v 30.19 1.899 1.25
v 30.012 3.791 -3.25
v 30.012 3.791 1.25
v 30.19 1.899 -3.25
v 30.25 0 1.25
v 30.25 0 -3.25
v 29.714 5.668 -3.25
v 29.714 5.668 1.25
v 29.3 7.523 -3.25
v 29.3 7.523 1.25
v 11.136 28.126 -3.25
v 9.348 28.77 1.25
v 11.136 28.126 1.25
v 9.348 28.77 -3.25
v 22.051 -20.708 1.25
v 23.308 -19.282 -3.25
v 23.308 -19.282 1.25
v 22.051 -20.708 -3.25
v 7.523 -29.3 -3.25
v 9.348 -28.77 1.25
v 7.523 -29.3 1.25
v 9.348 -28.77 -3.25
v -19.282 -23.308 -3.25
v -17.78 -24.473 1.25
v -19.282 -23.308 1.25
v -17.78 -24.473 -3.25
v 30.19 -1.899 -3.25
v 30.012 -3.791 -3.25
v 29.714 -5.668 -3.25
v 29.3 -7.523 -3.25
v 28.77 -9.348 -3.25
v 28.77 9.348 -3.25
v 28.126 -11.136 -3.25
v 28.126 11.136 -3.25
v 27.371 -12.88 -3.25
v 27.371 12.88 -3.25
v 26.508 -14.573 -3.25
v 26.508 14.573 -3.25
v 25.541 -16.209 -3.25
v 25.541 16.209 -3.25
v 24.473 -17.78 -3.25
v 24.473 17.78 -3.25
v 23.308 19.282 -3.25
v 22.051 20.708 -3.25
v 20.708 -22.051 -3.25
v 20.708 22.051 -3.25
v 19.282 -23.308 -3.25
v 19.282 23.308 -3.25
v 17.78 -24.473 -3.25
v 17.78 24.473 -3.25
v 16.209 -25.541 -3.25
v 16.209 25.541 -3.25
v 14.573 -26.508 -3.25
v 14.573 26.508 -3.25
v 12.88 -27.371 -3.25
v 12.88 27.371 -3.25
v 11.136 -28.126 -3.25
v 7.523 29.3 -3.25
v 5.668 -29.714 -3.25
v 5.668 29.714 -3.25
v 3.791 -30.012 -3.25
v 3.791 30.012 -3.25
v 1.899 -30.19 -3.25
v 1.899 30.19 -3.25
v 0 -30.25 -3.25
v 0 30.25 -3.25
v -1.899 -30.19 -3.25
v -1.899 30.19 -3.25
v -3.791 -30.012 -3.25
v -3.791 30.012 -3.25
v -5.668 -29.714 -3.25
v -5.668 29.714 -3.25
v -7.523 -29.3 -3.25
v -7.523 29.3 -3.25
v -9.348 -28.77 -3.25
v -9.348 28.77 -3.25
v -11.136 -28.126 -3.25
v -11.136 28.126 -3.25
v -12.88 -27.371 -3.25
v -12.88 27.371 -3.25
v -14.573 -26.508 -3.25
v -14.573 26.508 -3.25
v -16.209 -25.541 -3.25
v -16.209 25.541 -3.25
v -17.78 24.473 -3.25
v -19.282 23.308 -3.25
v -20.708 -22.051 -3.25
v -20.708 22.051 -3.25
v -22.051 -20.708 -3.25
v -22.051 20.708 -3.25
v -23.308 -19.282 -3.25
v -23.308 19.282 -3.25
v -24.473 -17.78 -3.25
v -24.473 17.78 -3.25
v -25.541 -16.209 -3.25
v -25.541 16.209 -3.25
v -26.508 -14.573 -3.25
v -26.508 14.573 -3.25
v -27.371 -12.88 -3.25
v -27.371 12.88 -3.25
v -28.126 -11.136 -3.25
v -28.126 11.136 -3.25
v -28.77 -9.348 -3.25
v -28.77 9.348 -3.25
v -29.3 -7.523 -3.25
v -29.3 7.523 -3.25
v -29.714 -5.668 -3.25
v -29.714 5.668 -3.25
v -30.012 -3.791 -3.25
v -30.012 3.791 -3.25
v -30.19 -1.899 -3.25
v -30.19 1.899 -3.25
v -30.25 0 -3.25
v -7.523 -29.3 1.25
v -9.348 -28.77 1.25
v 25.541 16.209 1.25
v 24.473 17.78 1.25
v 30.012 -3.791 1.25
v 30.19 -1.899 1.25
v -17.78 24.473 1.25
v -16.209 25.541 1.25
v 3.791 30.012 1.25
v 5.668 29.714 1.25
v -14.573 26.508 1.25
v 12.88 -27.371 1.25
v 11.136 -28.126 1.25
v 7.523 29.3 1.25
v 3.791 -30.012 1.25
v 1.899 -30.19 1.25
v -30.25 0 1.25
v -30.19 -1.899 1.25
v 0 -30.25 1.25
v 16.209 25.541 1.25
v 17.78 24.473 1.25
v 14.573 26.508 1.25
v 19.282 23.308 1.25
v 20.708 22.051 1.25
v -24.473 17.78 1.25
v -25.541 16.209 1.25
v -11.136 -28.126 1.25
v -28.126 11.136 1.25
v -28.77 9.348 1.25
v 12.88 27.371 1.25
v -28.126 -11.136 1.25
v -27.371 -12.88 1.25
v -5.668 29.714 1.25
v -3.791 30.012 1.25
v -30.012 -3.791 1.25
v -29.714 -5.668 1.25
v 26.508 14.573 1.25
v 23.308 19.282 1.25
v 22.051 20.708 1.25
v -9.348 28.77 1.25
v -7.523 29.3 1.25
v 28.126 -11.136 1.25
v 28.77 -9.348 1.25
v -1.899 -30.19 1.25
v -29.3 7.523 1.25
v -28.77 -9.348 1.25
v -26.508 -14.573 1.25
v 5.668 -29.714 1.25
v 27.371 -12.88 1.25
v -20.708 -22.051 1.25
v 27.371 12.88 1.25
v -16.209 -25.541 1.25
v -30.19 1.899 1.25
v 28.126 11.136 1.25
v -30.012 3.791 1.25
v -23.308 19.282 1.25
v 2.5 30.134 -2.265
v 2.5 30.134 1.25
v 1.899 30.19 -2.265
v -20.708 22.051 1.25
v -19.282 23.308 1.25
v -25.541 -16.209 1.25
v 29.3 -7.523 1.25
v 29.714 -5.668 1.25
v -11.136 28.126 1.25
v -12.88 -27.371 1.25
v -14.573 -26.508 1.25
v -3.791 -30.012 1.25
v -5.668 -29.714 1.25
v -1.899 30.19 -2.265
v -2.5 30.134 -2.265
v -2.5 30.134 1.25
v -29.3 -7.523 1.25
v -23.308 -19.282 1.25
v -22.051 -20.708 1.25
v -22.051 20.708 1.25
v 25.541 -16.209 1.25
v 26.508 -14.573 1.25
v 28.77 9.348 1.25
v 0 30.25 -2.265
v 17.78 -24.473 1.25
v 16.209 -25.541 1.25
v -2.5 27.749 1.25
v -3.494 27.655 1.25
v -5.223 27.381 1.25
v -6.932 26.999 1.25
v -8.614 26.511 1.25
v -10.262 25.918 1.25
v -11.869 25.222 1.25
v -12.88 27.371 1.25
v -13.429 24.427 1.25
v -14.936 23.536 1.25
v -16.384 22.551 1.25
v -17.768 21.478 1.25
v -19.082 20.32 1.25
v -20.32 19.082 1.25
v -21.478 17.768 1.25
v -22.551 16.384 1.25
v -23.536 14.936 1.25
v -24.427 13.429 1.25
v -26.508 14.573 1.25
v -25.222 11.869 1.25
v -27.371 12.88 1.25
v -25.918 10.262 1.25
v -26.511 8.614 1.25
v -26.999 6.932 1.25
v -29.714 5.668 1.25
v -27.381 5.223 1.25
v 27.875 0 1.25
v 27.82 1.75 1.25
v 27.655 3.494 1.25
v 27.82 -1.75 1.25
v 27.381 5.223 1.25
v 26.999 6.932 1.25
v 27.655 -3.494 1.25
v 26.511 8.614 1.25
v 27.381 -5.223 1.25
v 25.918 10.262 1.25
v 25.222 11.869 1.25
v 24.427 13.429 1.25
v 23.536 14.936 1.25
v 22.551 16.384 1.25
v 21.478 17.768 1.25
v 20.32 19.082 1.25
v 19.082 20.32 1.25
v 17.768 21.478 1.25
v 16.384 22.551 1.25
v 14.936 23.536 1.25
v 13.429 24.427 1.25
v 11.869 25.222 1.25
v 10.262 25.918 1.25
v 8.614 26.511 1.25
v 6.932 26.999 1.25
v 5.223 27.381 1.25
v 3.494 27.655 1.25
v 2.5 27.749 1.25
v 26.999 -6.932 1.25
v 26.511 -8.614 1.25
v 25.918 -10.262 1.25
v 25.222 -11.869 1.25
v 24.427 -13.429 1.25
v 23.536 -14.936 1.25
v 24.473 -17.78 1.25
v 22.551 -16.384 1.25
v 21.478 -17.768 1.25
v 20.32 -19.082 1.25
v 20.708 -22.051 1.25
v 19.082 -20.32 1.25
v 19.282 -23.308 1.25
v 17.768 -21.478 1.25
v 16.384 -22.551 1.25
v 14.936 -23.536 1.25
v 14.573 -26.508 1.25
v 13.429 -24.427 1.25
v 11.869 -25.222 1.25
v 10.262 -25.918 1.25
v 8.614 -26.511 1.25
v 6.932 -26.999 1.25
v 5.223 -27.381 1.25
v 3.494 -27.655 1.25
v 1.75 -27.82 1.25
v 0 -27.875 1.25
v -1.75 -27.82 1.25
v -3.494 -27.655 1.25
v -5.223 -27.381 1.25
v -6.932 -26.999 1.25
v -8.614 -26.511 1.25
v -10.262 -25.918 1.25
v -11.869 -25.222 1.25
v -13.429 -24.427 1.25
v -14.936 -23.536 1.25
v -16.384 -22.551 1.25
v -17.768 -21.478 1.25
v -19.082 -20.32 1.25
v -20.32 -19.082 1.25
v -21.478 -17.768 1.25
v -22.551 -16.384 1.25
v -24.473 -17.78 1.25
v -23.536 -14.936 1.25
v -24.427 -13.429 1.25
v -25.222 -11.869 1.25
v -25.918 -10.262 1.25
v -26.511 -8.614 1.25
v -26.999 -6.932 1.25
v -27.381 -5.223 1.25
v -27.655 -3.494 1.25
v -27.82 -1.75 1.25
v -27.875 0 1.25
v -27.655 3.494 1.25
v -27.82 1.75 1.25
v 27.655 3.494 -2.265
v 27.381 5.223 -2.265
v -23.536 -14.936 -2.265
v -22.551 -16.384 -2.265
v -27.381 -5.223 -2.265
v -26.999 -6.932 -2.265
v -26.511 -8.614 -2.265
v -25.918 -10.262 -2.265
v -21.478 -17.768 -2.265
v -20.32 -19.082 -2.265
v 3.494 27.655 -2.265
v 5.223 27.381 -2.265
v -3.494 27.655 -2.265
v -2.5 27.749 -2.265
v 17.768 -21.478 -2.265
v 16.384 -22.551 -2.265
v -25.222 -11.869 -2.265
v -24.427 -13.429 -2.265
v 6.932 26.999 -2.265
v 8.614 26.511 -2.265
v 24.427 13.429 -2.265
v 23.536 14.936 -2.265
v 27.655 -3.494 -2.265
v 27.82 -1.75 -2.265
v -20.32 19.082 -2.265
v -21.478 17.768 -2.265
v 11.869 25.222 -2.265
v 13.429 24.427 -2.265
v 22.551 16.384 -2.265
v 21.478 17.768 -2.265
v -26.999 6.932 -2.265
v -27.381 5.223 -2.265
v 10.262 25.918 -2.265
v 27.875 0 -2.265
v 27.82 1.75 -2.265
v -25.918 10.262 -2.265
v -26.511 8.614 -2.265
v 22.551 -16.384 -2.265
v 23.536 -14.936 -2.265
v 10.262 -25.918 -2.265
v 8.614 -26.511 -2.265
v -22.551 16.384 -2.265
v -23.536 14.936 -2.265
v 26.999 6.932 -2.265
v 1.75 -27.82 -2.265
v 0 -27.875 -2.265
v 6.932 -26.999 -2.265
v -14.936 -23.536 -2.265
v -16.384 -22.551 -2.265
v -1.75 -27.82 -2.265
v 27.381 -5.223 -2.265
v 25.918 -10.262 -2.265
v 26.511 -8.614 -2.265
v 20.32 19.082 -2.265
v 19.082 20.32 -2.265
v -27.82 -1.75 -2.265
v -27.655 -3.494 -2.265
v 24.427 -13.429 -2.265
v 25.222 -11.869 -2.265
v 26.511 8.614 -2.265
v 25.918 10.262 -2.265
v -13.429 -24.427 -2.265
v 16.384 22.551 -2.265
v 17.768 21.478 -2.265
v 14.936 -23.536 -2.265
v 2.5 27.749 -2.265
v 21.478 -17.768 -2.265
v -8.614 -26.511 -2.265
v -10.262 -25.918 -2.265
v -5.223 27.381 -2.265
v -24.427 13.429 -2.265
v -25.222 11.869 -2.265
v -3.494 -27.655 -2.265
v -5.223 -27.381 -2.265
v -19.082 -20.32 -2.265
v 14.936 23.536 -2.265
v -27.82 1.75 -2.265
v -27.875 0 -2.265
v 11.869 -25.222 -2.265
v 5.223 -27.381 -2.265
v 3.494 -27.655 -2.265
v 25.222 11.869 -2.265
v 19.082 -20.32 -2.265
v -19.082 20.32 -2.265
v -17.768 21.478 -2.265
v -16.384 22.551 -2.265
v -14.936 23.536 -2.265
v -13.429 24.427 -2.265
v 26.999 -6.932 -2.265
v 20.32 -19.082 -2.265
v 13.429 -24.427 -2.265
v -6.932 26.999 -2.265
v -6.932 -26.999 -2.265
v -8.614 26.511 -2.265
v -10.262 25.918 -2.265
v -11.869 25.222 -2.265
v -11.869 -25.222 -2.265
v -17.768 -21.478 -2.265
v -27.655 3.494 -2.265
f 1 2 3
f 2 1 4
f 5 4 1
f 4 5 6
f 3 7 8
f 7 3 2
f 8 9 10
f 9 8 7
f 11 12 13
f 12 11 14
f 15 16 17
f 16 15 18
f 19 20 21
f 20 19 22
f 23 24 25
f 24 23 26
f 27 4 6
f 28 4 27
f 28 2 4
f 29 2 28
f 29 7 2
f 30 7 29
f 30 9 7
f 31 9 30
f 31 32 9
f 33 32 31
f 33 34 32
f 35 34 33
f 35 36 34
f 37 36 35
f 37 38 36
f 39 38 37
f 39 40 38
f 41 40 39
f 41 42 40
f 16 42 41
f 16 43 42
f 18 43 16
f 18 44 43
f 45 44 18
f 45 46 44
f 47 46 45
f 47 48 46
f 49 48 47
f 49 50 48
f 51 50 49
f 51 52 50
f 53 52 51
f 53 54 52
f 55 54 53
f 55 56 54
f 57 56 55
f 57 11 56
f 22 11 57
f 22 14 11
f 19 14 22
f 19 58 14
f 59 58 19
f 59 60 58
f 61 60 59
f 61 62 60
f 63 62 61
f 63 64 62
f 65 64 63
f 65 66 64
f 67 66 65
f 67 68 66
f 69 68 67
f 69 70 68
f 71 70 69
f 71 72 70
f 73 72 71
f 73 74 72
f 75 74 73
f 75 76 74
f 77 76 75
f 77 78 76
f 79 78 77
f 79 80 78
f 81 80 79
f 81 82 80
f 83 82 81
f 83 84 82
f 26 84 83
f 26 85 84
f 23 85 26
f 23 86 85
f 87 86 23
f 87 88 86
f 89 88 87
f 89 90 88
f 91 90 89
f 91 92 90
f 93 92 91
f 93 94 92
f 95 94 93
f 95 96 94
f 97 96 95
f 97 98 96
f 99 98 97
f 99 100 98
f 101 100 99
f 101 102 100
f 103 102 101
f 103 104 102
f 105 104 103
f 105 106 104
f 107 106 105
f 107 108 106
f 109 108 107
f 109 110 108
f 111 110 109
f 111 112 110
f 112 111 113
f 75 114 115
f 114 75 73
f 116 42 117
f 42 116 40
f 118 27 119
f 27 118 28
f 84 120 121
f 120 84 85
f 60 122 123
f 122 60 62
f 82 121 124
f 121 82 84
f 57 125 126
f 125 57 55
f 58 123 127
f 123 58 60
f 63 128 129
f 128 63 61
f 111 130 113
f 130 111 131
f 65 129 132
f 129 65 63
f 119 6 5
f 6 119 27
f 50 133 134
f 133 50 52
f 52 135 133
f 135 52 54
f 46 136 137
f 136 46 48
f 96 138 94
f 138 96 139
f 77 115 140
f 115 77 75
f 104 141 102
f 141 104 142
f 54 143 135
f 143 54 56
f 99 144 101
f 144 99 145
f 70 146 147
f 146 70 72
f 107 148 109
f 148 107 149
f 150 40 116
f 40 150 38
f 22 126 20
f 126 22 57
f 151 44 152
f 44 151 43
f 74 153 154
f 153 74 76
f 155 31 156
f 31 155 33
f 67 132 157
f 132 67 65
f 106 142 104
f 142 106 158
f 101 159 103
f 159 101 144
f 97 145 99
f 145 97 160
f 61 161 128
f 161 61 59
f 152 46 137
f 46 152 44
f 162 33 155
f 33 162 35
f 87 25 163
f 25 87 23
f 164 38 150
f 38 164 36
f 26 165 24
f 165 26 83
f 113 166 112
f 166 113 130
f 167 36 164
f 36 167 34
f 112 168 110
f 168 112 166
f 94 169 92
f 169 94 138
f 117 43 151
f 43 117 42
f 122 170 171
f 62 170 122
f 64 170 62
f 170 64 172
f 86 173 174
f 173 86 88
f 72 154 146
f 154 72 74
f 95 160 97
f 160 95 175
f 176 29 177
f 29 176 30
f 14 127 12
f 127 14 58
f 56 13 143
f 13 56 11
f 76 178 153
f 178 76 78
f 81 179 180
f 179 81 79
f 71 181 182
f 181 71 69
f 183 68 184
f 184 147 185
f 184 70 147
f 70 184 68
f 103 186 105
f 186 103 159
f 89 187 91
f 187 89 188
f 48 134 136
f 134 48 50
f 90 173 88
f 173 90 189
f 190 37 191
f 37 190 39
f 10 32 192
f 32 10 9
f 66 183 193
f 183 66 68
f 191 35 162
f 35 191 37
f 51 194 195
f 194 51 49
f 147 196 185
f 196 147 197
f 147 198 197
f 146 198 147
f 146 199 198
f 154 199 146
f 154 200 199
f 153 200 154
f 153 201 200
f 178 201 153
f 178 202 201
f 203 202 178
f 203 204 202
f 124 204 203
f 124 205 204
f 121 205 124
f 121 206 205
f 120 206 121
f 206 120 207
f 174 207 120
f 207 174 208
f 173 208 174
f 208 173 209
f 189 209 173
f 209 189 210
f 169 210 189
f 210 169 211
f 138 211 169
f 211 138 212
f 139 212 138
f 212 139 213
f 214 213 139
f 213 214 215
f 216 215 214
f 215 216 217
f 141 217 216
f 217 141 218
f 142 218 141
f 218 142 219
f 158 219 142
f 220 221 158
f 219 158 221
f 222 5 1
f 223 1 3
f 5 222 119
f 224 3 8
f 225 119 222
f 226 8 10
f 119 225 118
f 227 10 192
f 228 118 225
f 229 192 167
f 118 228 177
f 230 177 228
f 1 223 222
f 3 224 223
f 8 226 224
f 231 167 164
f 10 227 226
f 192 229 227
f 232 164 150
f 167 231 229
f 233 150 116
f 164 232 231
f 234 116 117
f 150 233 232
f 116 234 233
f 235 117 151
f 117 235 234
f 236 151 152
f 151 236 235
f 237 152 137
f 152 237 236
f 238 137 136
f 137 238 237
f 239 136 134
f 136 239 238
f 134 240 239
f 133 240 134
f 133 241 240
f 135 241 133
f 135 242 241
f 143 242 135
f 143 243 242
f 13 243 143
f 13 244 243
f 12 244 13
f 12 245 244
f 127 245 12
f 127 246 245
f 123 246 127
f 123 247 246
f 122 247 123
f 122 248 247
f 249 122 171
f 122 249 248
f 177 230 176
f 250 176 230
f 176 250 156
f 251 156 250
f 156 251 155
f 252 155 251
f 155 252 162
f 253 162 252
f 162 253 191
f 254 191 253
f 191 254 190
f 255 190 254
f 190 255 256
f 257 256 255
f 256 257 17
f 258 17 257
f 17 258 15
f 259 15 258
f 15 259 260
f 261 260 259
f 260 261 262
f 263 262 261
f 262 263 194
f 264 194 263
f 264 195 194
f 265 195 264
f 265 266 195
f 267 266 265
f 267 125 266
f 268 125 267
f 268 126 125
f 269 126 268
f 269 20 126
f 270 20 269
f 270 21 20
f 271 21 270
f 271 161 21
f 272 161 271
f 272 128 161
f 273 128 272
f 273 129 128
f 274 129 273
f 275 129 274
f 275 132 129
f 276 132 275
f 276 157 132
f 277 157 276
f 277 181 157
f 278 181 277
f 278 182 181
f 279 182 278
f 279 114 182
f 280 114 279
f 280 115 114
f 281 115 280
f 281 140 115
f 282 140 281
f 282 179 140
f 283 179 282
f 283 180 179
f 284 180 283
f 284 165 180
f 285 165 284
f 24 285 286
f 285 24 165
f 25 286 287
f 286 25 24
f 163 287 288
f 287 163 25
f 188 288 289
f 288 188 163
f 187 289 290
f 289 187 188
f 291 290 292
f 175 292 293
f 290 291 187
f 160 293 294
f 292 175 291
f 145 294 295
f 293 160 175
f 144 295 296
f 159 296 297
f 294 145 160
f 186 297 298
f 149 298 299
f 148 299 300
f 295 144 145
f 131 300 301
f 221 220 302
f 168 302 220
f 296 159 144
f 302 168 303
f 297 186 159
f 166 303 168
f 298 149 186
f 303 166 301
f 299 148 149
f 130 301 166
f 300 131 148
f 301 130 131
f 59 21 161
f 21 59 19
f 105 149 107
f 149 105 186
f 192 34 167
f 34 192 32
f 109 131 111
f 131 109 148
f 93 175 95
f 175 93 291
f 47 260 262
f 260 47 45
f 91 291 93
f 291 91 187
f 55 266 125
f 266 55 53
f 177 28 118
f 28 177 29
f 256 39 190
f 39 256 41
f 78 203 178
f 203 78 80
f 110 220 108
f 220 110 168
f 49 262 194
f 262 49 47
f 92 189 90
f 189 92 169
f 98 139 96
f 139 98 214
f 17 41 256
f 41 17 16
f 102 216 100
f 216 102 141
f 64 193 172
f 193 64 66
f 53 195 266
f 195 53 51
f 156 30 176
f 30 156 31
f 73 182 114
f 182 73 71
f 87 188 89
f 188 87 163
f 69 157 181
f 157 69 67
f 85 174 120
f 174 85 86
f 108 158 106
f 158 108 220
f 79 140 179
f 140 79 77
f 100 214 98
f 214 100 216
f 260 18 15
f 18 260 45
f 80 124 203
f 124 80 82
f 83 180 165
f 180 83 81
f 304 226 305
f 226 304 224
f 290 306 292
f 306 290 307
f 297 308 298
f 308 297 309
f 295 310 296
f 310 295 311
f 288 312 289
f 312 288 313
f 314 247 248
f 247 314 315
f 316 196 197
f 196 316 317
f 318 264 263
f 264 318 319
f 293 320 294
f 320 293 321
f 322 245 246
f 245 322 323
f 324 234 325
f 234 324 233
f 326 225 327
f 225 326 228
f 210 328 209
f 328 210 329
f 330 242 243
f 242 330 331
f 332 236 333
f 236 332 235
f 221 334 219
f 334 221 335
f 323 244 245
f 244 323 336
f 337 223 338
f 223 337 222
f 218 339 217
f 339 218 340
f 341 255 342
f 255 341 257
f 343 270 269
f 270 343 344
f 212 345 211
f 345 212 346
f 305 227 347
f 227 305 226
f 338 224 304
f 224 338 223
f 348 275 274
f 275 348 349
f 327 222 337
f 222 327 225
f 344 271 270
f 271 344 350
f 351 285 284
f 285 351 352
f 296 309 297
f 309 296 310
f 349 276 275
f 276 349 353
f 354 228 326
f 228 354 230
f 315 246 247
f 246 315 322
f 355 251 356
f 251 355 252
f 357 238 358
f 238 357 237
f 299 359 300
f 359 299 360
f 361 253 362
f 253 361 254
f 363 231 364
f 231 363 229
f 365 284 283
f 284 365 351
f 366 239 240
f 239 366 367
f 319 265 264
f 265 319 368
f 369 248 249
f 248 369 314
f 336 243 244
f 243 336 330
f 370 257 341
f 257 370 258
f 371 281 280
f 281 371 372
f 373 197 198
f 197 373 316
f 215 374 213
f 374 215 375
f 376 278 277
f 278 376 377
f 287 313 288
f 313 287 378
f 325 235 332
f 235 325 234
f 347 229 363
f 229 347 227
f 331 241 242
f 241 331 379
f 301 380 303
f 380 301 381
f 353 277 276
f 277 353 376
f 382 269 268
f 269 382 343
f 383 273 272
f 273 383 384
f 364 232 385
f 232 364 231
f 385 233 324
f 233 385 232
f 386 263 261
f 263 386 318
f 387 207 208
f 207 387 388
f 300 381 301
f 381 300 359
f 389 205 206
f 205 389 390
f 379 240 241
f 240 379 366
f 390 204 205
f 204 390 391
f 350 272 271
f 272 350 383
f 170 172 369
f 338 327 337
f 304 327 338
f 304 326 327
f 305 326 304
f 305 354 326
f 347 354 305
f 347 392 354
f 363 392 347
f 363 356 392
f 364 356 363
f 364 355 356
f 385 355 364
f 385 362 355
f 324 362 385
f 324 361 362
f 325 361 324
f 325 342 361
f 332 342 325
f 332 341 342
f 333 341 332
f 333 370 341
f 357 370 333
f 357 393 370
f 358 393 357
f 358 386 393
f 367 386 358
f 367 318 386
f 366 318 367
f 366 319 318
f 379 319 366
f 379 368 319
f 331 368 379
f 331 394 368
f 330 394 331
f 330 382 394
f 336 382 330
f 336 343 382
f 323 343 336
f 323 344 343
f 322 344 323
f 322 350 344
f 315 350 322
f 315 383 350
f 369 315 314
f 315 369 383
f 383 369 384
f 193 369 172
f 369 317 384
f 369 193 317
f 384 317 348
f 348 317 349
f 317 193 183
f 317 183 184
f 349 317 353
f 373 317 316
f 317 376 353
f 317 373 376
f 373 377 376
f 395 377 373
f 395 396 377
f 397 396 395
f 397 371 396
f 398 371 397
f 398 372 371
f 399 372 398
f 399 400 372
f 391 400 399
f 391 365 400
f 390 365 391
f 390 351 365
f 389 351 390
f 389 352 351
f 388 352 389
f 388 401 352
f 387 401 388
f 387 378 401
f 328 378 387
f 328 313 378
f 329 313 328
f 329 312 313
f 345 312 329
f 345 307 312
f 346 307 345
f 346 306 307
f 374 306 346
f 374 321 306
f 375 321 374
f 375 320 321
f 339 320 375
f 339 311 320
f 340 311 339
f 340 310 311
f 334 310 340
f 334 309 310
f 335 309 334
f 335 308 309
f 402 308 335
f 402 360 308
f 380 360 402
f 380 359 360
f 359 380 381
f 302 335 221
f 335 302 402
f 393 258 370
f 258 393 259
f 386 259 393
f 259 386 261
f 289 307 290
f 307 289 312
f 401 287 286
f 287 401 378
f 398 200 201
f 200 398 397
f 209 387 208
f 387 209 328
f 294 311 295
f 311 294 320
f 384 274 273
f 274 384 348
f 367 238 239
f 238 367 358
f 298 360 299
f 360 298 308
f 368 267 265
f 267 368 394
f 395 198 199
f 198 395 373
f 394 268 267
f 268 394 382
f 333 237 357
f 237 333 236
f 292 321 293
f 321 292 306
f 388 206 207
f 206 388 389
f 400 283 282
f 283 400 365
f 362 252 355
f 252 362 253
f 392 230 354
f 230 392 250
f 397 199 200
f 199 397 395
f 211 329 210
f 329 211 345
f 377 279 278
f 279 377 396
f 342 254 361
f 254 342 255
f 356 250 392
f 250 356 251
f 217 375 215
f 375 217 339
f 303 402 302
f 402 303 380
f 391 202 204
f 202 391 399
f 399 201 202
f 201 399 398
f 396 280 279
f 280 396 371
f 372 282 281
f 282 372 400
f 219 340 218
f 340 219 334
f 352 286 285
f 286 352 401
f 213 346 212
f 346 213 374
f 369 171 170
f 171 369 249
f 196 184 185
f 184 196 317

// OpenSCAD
$fn = 100;
difference()
{
  translate(v = [0, 0, -1])
  {
    cylinder(h = 4.5, r = 30.25, center = true);
  }
  cylinder(h = 4.53, r = 27.875, center = true);
  translate(v = [0, 27.875, 0])
  {
    cube(size = [5, 10, 4.53], center = true);
  }
}
